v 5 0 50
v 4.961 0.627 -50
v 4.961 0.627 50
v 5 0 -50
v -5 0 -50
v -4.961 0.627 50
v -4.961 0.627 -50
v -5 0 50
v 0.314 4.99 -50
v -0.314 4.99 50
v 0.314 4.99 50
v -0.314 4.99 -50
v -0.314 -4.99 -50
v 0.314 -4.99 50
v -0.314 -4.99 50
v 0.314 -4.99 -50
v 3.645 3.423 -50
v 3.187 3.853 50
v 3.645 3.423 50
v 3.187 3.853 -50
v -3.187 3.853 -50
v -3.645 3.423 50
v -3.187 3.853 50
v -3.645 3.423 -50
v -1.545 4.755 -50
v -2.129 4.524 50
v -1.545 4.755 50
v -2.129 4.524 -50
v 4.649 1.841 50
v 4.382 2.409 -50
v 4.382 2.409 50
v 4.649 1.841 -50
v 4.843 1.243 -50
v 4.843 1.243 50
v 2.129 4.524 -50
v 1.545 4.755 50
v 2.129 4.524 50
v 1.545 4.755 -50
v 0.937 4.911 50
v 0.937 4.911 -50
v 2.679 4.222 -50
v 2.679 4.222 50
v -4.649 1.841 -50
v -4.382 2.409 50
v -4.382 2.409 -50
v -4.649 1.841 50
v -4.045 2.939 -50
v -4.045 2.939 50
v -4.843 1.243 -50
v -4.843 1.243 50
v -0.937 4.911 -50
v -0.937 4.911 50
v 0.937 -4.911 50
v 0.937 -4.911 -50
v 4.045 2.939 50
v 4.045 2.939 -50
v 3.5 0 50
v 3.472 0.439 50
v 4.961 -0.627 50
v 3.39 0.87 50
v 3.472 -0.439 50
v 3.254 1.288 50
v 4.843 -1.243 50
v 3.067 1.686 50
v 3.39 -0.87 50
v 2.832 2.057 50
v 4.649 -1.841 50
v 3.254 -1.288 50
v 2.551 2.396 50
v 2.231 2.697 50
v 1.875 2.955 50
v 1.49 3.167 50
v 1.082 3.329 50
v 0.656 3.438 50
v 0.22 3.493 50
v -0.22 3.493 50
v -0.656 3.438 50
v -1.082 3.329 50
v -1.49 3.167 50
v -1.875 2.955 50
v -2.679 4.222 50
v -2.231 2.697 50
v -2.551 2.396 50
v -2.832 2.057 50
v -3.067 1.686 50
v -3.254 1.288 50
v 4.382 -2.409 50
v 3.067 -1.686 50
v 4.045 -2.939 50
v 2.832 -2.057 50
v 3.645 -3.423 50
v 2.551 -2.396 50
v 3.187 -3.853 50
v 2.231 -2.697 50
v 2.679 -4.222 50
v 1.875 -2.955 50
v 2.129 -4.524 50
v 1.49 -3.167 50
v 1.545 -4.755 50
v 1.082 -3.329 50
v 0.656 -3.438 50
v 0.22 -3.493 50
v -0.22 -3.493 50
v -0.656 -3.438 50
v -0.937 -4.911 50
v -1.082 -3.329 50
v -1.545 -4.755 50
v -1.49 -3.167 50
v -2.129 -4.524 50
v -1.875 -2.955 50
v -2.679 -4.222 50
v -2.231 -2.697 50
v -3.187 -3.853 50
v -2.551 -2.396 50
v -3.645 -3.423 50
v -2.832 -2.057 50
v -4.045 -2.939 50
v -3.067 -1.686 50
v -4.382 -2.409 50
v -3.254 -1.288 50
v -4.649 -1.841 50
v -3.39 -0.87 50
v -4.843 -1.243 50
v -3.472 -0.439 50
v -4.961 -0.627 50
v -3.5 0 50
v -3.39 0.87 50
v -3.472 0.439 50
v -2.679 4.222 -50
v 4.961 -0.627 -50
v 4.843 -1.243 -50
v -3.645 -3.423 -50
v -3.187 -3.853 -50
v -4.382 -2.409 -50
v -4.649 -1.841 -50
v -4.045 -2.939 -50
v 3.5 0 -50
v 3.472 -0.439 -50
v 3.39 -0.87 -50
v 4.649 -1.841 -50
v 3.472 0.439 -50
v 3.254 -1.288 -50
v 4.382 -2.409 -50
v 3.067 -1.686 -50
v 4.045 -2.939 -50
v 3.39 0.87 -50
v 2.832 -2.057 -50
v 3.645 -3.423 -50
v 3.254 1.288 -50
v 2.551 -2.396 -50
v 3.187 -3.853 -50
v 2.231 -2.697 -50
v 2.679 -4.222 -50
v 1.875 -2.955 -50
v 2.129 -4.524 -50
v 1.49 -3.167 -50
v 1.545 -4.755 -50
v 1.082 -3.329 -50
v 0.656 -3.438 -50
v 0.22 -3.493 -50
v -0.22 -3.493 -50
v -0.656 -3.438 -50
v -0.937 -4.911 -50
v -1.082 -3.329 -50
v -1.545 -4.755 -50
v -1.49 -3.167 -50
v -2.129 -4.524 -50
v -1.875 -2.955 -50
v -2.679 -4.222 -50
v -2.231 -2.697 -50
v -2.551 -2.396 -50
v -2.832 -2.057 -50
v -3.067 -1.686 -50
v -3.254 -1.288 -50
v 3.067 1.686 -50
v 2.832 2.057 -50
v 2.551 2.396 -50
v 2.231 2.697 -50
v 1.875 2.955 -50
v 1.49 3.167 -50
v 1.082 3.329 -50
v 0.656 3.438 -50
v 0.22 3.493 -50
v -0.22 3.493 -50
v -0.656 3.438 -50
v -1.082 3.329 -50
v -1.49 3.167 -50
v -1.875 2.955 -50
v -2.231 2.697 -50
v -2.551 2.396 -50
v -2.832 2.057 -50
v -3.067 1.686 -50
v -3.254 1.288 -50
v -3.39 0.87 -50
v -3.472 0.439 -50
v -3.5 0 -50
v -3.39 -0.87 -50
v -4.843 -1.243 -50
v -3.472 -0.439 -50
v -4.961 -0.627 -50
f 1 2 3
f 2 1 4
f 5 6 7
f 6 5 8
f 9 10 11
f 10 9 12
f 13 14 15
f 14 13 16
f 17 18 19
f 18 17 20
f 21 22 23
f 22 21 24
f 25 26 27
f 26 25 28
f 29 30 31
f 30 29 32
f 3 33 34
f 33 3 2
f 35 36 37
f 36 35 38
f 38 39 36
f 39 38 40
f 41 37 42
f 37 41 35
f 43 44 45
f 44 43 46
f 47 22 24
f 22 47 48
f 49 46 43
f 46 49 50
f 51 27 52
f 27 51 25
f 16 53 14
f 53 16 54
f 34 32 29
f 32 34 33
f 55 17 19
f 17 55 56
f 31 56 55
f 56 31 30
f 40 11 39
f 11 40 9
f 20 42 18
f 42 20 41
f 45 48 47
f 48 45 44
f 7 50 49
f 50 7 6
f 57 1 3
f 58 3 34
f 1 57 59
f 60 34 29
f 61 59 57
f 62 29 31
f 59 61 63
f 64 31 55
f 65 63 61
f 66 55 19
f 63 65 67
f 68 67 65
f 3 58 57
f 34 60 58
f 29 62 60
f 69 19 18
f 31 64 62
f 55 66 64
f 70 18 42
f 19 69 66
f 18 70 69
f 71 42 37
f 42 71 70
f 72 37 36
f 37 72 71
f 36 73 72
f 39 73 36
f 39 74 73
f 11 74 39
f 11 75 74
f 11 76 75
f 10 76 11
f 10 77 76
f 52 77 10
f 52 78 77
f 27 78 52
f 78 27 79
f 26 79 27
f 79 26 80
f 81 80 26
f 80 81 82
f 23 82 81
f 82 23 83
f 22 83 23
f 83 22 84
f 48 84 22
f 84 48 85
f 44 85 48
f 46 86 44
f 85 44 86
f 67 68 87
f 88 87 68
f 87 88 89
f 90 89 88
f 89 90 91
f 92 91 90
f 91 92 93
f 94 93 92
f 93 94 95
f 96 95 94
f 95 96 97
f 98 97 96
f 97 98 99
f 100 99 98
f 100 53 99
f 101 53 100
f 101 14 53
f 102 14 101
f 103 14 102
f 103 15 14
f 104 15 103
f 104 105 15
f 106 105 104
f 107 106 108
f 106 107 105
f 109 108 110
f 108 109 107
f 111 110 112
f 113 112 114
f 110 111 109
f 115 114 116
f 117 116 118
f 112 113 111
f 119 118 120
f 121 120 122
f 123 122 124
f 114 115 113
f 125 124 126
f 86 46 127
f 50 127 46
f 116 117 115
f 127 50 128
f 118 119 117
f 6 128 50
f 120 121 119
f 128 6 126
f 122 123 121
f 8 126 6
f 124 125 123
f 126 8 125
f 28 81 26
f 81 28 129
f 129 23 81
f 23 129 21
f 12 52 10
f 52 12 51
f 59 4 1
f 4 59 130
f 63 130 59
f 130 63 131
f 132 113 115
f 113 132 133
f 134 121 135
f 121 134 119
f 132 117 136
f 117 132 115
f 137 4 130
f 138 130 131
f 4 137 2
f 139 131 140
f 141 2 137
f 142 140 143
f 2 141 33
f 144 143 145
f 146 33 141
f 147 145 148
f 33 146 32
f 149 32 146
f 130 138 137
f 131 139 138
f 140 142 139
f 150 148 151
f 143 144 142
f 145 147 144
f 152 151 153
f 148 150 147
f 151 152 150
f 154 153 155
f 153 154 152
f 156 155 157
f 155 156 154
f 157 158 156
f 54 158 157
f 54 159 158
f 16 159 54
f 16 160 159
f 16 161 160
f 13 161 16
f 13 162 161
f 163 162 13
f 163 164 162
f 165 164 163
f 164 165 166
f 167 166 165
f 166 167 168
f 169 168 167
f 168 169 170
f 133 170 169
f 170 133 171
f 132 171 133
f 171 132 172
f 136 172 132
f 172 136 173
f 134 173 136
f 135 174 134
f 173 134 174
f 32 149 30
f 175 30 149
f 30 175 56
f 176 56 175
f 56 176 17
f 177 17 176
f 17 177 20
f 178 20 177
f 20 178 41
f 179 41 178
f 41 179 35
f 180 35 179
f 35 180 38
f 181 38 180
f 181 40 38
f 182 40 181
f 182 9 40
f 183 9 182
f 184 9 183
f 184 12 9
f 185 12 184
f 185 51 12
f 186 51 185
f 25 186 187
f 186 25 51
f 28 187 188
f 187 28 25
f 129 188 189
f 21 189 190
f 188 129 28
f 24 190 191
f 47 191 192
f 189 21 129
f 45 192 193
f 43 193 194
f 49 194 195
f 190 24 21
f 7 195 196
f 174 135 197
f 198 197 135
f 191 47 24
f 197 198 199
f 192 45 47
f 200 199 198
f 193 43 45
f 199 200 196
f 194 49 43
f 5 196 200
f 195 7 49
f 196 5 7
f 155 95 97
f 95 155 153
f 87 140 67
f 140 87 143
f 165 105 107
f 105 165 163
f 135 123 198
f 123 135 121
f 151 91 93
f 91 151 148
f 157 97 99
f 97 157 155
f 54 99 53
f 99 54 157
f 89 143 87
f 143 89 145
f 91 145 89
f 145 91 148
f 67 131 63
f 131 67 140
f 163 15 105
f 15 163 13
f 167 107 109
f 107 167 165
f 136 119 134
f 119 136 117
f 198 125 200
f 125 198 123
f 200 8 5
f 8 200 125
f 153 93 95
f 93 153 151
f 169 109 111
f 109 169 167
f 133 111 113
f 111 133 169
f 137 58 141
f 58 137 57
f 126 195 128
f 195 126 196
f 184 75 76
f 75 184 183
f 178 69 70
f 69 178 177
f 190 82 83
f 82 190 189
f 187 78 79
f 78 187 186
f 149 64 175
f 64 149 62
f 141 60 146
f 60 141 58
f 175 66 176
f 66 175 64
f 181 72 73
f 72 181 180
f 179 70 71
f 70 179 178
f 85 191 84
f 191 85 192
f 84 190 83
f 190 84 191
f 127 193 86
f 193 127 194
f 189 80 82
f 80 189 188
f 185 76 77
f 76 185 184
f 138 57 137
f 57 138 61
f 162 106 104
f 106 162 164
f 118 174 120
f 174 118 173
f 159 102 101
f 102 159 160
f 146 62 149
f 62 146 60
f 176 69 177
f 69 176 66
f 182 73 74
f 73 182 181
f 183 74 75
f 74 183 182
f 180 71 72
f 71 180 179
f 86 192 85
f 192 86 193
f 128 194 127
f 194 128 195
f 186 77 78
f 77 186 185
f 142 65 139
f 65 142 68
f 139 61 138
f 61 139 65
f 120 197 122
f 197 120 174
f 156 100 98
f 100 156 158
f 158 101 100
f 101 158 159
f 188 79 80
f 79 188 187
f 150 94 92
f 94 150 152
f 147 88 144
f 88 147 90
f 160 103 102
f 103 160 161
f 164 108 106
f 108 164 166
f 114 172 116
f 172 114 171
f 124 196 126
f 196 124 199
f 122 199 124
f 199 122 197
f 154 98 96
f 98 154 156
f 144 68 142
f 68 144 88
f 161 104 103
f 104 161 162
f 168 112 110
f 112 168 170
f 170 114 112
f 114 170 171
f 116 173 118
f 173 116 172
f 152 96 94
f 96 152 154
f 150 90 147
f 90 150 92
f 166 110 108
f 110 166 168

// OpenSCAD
$fn = 50;


difference() {
	union() {
		translate(v = [0, 0, -50.0000000000]) {
			cylinder(h = 100, r = 5.0000000000);
		}
	}
	union() {
		translate(v = [0, 0, -100.0000000000]) {
			cylinder(h = 200, r = 3.5000000000);
		}
	}
}
